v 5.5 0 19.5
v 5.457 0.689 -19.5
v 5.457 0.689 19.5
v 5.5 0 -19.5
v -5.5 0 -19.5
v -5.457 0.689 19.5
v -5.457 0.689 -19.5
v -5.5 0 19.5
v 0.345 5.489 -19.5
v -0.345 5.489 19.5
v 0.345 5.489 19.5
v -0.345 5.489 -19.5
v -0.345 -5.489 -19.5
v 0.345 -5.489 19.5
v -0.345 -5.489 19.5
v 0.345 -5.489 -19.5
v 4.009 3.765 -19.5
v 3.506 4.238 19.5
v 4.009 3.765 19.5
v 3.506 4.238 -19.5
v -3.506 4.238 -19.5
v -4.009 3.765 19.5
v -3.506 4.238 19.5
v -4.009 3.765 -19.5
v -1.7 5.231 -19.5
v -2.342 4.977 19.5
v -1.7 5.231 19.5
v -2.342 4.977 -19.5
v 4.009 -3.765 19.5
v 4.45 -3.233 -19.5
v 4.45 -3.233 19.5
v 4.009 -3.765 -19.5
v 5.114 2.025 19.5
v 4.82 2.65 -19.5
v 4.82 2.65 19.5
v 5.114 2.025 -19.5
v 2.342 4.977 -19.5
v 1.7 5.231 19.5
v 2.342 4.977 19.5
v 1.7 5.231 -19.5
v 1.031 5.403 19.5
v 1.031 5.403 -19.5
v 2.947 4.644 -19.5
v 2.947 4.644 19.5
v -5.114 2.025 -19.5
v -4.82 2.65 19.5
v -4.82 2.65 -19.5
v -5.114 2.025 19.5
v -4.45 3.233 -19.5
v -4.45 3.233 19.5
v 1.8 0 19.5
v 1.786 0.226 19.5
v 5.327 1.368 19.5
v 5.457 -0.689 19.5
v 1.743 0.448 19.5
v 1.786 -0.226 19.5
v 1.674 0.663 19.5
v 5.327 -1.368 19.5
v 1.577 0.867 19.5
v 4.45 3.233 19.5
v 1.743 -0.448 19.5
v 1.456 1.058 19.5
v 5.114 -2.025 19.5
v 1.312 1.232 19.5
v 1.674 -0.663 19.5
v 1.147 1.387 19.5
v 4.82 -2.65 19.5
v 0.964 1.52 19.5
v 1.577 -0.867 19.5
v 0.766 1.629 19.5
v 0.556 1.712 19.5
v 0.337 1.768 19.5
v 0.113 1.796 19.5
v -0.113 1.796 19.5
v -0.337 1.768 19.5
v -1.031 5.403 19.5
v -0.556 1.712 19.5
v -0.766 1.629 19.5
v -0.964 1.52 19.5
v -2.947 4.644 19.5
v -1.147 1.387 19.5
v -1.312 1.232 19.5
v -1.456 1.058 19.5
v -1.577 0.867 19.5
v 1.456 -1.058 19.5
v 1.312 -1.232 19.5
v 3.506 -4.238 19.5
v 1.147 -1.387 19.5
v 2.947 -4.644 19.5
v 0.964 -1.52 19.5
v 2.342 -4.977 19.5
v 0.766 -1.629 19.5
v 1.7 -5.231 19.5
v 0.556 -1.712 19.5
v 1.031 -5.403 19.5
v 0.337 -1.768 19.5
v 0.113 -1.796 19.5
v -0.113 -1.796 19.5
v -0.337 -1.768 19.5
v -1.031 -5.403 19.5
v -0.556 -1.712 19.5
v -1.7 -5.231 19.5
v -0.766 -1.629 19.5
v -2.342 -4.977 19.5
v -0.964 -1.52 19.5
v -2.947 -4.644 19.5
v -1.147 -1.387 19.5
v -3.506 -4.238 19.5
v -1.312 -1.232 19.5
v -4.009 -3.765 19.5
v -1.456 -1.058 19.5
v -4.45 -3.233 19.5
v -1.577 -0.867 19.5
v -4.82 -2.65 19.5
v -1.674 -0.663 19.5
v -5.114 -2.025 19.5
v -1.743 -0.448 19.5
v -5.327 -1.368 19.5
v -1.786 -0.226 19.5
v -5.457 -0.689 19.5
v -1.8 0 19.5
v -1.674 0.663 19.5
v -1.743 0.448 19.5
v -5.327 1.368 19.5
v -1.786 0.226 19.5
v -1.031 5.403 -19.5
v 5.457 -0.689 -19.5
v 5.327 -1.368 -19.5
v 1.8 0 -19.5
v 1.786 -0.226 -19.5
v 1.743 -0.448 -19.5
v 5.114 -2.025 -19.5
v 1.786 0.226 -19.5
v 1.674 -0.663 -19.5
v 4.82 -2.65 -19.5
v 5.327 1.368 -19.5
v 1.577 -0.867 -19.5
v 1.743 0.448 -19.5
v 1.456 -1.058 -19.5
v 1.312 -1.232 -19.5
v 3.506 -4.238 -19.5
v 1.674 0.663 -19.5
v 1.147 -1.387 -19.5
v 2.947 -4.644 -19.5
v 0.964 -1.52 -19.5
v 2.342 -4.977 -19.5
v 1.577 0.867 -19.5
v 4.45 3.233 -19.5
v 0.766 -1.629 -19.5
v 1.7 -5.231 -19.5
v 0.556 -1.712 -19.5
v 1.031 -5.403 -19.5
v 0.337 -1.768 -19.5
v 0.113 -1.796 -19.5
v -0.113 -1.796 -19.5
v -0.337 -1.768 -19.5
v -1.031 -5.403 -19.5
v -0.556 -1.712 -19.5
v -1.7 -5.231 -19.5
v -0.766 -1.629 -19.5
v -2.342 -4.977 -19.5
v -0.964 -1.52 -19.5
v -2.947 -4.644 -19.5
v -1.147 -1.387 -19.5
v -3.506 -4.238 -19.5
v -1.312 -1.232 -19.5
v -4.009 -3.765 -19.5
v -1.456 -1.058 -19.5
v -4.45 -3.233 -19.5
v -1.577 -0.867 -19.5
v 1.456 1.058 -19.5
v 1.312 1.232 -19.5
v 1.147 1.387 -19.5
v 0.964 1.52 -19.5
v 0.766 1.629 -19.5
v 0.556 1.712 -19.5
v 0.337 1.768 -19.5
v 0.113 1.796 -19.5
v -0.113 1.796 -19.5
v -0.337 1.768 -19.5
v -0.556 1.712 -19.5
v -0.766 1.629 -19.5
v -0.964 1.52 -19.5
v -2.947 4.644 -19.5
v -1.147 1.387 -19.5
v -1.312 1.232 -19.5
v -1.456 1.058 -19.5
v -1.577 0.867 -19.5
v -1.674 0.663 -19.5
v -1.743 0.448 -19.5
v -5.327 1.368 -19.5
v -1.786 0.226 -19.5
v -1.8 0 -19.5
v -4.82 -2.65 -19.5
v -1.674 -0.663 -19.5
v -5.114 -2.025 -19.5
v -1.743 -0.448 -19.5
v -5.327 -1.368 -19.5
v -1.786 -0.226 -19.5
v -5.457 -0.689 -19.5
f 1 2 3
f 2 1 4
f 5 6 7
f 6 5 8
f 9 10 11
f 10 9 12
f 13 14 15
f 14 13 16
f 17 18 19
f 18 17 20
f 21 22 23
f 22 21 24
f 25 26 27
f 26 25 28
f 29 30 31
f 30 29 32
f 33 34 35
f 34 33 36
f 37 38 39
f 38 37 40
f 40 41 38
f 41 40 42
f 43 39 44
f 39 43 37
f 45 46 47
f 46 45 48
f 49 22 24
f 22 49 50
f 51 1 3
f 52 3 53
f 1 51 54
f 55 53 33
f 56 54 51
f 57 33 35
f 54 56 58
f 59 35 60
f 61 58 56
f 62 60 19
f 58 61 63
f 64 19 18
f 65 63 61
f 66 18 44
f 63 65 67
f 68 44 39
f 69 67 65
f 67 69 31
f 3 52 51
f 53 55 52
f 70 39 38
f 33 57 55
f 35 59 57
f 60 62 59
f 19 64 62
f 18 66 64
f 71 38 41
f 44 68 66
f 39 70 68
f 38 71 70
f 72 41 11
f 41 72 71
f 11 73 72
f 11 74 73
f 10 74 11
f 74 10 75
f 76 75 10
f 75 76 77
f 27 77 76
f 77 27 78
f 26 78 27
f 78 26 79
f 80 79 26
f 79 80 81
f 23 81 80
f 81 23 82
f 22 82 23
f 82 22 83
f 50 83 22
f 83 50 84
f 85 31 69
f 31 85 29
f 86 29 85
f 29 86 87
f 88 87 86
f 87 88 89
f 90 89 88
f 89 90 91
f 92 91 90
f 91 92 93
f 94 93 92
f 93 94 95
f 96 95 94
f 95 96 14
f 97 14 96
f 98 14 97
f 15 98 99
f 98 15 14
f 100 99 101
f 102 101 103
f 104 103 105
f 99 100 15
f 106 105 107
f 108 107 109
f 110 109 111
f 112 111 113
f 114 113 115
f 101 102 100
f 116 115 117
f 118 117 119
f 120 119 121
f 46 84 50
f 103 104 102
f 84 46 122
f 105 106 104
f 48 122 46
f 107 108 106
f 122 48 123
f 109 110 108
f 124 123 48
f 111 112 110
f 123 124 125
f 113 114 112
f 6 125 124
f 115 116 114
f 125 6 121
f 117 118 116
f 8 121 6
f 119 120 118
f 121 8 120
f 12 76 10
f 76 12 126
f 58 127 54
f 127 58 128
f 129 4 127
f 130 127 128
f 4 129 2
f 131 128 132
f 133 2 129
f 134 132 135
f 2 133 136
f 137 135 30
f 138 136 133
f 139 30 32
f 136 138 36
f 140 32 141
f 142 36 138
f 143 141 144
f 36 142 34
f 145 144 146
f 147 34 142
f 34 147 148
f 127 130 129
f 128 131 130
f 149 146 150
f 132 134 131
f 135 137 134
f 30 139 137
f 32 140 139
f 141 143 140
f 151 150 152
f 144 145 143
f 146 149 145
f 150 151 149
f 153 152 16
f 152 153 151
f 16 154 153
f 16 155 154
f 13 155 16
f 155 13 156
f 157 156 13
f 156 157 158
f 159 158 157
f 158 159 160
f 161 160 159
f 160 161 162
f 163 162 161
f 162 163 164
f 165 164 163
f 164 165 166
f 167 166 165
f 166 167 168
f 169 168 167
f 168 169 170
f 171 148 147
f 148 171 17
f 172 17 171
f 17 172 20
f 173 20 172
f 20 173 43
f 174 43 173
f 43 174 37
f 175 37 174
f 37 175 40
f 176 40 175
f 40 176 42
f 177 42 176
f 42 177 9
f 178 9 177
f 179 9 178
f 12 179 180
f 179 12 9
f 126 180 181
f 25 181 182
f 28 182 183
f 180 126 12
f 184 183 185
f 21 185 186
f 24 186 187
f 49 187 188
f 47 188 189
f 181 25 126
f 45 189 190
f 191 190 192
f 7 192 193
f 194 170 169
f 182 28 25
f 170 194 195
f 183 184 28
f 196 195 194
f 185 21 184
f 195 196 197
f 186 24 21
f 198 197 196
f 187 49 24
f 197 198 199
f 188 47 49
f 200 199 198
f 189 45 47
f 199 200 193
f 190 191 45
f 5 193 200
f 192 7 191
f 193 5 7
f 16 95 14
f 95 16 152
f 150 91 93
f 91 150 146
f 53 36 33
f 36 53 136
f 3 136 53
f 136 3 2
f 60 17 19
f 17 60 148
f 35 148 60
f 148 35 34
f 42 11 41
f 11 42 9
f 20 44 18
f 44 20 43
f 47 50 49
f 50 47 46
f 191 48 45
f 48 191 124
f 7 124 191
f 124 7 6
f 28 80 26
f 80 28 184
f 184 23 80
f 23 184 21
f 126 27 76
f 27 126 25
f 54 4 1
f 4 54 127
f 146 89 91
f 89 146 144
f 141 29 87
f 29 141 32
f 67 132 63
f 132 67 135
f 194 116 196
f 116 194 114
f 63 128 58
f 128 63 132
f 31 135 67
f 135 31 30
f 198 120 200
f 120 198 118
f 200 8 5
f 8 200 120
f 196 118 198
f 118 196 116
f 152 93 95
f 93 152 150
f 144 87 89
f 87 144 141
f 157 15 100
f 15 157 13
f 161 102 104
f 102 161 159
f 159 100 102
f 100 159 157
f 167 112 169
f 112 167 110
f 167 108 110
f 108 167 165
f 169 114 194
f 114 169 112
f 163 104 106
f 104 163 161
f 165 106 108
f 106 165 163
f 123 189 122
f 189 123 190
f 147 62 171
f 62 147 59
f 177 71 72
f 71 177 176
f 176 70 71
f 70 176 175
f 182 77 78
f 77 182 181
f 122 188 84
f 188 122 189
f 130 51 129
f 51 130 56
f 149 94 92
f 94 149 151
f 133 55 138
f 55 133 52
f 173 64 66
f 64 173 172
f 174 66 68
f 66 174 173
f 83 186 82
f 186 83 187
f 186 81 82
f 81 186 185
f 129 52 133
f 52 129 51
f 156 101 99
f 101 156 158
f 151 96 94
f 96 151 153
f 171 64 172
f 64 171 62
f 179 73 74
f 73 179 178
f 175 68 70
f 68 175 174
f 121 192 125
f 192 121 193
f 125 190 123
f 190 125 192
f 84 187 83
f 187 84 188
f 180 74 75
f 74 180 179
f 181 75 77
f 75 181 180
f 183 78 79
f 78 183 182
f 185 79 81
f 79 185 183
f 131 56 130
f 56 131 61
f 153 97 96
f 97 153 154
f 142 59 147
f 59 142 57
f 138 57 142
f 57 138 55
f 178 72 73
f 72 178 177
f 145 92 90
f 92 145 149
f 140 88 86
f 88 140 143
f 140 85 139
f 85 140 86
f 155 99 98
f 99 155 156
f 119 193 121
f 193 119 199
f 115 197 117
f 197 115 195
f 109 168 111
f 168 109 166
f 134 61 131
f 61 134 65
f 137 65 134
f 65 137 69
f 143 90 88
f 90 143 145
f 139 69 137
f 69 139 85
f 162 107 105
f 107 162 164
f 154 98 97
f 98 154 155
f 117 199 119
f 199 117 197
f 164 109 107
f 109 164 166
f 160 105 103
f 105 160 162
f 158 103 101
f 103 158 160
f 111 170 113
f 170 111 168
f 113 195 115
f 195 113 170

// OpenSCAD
$fn = 50;


difference() {
	union() {
		translate(v = [0, 0, -19.5000000000]) {
			cylinder(h = 39, r = 5.5000000000);
		}
	}
	union() {
		translate(v = [0, 0, -100.0000000000]) {
			cylinder(h = 200, r = 1.8000000000);
		}
	}
}
